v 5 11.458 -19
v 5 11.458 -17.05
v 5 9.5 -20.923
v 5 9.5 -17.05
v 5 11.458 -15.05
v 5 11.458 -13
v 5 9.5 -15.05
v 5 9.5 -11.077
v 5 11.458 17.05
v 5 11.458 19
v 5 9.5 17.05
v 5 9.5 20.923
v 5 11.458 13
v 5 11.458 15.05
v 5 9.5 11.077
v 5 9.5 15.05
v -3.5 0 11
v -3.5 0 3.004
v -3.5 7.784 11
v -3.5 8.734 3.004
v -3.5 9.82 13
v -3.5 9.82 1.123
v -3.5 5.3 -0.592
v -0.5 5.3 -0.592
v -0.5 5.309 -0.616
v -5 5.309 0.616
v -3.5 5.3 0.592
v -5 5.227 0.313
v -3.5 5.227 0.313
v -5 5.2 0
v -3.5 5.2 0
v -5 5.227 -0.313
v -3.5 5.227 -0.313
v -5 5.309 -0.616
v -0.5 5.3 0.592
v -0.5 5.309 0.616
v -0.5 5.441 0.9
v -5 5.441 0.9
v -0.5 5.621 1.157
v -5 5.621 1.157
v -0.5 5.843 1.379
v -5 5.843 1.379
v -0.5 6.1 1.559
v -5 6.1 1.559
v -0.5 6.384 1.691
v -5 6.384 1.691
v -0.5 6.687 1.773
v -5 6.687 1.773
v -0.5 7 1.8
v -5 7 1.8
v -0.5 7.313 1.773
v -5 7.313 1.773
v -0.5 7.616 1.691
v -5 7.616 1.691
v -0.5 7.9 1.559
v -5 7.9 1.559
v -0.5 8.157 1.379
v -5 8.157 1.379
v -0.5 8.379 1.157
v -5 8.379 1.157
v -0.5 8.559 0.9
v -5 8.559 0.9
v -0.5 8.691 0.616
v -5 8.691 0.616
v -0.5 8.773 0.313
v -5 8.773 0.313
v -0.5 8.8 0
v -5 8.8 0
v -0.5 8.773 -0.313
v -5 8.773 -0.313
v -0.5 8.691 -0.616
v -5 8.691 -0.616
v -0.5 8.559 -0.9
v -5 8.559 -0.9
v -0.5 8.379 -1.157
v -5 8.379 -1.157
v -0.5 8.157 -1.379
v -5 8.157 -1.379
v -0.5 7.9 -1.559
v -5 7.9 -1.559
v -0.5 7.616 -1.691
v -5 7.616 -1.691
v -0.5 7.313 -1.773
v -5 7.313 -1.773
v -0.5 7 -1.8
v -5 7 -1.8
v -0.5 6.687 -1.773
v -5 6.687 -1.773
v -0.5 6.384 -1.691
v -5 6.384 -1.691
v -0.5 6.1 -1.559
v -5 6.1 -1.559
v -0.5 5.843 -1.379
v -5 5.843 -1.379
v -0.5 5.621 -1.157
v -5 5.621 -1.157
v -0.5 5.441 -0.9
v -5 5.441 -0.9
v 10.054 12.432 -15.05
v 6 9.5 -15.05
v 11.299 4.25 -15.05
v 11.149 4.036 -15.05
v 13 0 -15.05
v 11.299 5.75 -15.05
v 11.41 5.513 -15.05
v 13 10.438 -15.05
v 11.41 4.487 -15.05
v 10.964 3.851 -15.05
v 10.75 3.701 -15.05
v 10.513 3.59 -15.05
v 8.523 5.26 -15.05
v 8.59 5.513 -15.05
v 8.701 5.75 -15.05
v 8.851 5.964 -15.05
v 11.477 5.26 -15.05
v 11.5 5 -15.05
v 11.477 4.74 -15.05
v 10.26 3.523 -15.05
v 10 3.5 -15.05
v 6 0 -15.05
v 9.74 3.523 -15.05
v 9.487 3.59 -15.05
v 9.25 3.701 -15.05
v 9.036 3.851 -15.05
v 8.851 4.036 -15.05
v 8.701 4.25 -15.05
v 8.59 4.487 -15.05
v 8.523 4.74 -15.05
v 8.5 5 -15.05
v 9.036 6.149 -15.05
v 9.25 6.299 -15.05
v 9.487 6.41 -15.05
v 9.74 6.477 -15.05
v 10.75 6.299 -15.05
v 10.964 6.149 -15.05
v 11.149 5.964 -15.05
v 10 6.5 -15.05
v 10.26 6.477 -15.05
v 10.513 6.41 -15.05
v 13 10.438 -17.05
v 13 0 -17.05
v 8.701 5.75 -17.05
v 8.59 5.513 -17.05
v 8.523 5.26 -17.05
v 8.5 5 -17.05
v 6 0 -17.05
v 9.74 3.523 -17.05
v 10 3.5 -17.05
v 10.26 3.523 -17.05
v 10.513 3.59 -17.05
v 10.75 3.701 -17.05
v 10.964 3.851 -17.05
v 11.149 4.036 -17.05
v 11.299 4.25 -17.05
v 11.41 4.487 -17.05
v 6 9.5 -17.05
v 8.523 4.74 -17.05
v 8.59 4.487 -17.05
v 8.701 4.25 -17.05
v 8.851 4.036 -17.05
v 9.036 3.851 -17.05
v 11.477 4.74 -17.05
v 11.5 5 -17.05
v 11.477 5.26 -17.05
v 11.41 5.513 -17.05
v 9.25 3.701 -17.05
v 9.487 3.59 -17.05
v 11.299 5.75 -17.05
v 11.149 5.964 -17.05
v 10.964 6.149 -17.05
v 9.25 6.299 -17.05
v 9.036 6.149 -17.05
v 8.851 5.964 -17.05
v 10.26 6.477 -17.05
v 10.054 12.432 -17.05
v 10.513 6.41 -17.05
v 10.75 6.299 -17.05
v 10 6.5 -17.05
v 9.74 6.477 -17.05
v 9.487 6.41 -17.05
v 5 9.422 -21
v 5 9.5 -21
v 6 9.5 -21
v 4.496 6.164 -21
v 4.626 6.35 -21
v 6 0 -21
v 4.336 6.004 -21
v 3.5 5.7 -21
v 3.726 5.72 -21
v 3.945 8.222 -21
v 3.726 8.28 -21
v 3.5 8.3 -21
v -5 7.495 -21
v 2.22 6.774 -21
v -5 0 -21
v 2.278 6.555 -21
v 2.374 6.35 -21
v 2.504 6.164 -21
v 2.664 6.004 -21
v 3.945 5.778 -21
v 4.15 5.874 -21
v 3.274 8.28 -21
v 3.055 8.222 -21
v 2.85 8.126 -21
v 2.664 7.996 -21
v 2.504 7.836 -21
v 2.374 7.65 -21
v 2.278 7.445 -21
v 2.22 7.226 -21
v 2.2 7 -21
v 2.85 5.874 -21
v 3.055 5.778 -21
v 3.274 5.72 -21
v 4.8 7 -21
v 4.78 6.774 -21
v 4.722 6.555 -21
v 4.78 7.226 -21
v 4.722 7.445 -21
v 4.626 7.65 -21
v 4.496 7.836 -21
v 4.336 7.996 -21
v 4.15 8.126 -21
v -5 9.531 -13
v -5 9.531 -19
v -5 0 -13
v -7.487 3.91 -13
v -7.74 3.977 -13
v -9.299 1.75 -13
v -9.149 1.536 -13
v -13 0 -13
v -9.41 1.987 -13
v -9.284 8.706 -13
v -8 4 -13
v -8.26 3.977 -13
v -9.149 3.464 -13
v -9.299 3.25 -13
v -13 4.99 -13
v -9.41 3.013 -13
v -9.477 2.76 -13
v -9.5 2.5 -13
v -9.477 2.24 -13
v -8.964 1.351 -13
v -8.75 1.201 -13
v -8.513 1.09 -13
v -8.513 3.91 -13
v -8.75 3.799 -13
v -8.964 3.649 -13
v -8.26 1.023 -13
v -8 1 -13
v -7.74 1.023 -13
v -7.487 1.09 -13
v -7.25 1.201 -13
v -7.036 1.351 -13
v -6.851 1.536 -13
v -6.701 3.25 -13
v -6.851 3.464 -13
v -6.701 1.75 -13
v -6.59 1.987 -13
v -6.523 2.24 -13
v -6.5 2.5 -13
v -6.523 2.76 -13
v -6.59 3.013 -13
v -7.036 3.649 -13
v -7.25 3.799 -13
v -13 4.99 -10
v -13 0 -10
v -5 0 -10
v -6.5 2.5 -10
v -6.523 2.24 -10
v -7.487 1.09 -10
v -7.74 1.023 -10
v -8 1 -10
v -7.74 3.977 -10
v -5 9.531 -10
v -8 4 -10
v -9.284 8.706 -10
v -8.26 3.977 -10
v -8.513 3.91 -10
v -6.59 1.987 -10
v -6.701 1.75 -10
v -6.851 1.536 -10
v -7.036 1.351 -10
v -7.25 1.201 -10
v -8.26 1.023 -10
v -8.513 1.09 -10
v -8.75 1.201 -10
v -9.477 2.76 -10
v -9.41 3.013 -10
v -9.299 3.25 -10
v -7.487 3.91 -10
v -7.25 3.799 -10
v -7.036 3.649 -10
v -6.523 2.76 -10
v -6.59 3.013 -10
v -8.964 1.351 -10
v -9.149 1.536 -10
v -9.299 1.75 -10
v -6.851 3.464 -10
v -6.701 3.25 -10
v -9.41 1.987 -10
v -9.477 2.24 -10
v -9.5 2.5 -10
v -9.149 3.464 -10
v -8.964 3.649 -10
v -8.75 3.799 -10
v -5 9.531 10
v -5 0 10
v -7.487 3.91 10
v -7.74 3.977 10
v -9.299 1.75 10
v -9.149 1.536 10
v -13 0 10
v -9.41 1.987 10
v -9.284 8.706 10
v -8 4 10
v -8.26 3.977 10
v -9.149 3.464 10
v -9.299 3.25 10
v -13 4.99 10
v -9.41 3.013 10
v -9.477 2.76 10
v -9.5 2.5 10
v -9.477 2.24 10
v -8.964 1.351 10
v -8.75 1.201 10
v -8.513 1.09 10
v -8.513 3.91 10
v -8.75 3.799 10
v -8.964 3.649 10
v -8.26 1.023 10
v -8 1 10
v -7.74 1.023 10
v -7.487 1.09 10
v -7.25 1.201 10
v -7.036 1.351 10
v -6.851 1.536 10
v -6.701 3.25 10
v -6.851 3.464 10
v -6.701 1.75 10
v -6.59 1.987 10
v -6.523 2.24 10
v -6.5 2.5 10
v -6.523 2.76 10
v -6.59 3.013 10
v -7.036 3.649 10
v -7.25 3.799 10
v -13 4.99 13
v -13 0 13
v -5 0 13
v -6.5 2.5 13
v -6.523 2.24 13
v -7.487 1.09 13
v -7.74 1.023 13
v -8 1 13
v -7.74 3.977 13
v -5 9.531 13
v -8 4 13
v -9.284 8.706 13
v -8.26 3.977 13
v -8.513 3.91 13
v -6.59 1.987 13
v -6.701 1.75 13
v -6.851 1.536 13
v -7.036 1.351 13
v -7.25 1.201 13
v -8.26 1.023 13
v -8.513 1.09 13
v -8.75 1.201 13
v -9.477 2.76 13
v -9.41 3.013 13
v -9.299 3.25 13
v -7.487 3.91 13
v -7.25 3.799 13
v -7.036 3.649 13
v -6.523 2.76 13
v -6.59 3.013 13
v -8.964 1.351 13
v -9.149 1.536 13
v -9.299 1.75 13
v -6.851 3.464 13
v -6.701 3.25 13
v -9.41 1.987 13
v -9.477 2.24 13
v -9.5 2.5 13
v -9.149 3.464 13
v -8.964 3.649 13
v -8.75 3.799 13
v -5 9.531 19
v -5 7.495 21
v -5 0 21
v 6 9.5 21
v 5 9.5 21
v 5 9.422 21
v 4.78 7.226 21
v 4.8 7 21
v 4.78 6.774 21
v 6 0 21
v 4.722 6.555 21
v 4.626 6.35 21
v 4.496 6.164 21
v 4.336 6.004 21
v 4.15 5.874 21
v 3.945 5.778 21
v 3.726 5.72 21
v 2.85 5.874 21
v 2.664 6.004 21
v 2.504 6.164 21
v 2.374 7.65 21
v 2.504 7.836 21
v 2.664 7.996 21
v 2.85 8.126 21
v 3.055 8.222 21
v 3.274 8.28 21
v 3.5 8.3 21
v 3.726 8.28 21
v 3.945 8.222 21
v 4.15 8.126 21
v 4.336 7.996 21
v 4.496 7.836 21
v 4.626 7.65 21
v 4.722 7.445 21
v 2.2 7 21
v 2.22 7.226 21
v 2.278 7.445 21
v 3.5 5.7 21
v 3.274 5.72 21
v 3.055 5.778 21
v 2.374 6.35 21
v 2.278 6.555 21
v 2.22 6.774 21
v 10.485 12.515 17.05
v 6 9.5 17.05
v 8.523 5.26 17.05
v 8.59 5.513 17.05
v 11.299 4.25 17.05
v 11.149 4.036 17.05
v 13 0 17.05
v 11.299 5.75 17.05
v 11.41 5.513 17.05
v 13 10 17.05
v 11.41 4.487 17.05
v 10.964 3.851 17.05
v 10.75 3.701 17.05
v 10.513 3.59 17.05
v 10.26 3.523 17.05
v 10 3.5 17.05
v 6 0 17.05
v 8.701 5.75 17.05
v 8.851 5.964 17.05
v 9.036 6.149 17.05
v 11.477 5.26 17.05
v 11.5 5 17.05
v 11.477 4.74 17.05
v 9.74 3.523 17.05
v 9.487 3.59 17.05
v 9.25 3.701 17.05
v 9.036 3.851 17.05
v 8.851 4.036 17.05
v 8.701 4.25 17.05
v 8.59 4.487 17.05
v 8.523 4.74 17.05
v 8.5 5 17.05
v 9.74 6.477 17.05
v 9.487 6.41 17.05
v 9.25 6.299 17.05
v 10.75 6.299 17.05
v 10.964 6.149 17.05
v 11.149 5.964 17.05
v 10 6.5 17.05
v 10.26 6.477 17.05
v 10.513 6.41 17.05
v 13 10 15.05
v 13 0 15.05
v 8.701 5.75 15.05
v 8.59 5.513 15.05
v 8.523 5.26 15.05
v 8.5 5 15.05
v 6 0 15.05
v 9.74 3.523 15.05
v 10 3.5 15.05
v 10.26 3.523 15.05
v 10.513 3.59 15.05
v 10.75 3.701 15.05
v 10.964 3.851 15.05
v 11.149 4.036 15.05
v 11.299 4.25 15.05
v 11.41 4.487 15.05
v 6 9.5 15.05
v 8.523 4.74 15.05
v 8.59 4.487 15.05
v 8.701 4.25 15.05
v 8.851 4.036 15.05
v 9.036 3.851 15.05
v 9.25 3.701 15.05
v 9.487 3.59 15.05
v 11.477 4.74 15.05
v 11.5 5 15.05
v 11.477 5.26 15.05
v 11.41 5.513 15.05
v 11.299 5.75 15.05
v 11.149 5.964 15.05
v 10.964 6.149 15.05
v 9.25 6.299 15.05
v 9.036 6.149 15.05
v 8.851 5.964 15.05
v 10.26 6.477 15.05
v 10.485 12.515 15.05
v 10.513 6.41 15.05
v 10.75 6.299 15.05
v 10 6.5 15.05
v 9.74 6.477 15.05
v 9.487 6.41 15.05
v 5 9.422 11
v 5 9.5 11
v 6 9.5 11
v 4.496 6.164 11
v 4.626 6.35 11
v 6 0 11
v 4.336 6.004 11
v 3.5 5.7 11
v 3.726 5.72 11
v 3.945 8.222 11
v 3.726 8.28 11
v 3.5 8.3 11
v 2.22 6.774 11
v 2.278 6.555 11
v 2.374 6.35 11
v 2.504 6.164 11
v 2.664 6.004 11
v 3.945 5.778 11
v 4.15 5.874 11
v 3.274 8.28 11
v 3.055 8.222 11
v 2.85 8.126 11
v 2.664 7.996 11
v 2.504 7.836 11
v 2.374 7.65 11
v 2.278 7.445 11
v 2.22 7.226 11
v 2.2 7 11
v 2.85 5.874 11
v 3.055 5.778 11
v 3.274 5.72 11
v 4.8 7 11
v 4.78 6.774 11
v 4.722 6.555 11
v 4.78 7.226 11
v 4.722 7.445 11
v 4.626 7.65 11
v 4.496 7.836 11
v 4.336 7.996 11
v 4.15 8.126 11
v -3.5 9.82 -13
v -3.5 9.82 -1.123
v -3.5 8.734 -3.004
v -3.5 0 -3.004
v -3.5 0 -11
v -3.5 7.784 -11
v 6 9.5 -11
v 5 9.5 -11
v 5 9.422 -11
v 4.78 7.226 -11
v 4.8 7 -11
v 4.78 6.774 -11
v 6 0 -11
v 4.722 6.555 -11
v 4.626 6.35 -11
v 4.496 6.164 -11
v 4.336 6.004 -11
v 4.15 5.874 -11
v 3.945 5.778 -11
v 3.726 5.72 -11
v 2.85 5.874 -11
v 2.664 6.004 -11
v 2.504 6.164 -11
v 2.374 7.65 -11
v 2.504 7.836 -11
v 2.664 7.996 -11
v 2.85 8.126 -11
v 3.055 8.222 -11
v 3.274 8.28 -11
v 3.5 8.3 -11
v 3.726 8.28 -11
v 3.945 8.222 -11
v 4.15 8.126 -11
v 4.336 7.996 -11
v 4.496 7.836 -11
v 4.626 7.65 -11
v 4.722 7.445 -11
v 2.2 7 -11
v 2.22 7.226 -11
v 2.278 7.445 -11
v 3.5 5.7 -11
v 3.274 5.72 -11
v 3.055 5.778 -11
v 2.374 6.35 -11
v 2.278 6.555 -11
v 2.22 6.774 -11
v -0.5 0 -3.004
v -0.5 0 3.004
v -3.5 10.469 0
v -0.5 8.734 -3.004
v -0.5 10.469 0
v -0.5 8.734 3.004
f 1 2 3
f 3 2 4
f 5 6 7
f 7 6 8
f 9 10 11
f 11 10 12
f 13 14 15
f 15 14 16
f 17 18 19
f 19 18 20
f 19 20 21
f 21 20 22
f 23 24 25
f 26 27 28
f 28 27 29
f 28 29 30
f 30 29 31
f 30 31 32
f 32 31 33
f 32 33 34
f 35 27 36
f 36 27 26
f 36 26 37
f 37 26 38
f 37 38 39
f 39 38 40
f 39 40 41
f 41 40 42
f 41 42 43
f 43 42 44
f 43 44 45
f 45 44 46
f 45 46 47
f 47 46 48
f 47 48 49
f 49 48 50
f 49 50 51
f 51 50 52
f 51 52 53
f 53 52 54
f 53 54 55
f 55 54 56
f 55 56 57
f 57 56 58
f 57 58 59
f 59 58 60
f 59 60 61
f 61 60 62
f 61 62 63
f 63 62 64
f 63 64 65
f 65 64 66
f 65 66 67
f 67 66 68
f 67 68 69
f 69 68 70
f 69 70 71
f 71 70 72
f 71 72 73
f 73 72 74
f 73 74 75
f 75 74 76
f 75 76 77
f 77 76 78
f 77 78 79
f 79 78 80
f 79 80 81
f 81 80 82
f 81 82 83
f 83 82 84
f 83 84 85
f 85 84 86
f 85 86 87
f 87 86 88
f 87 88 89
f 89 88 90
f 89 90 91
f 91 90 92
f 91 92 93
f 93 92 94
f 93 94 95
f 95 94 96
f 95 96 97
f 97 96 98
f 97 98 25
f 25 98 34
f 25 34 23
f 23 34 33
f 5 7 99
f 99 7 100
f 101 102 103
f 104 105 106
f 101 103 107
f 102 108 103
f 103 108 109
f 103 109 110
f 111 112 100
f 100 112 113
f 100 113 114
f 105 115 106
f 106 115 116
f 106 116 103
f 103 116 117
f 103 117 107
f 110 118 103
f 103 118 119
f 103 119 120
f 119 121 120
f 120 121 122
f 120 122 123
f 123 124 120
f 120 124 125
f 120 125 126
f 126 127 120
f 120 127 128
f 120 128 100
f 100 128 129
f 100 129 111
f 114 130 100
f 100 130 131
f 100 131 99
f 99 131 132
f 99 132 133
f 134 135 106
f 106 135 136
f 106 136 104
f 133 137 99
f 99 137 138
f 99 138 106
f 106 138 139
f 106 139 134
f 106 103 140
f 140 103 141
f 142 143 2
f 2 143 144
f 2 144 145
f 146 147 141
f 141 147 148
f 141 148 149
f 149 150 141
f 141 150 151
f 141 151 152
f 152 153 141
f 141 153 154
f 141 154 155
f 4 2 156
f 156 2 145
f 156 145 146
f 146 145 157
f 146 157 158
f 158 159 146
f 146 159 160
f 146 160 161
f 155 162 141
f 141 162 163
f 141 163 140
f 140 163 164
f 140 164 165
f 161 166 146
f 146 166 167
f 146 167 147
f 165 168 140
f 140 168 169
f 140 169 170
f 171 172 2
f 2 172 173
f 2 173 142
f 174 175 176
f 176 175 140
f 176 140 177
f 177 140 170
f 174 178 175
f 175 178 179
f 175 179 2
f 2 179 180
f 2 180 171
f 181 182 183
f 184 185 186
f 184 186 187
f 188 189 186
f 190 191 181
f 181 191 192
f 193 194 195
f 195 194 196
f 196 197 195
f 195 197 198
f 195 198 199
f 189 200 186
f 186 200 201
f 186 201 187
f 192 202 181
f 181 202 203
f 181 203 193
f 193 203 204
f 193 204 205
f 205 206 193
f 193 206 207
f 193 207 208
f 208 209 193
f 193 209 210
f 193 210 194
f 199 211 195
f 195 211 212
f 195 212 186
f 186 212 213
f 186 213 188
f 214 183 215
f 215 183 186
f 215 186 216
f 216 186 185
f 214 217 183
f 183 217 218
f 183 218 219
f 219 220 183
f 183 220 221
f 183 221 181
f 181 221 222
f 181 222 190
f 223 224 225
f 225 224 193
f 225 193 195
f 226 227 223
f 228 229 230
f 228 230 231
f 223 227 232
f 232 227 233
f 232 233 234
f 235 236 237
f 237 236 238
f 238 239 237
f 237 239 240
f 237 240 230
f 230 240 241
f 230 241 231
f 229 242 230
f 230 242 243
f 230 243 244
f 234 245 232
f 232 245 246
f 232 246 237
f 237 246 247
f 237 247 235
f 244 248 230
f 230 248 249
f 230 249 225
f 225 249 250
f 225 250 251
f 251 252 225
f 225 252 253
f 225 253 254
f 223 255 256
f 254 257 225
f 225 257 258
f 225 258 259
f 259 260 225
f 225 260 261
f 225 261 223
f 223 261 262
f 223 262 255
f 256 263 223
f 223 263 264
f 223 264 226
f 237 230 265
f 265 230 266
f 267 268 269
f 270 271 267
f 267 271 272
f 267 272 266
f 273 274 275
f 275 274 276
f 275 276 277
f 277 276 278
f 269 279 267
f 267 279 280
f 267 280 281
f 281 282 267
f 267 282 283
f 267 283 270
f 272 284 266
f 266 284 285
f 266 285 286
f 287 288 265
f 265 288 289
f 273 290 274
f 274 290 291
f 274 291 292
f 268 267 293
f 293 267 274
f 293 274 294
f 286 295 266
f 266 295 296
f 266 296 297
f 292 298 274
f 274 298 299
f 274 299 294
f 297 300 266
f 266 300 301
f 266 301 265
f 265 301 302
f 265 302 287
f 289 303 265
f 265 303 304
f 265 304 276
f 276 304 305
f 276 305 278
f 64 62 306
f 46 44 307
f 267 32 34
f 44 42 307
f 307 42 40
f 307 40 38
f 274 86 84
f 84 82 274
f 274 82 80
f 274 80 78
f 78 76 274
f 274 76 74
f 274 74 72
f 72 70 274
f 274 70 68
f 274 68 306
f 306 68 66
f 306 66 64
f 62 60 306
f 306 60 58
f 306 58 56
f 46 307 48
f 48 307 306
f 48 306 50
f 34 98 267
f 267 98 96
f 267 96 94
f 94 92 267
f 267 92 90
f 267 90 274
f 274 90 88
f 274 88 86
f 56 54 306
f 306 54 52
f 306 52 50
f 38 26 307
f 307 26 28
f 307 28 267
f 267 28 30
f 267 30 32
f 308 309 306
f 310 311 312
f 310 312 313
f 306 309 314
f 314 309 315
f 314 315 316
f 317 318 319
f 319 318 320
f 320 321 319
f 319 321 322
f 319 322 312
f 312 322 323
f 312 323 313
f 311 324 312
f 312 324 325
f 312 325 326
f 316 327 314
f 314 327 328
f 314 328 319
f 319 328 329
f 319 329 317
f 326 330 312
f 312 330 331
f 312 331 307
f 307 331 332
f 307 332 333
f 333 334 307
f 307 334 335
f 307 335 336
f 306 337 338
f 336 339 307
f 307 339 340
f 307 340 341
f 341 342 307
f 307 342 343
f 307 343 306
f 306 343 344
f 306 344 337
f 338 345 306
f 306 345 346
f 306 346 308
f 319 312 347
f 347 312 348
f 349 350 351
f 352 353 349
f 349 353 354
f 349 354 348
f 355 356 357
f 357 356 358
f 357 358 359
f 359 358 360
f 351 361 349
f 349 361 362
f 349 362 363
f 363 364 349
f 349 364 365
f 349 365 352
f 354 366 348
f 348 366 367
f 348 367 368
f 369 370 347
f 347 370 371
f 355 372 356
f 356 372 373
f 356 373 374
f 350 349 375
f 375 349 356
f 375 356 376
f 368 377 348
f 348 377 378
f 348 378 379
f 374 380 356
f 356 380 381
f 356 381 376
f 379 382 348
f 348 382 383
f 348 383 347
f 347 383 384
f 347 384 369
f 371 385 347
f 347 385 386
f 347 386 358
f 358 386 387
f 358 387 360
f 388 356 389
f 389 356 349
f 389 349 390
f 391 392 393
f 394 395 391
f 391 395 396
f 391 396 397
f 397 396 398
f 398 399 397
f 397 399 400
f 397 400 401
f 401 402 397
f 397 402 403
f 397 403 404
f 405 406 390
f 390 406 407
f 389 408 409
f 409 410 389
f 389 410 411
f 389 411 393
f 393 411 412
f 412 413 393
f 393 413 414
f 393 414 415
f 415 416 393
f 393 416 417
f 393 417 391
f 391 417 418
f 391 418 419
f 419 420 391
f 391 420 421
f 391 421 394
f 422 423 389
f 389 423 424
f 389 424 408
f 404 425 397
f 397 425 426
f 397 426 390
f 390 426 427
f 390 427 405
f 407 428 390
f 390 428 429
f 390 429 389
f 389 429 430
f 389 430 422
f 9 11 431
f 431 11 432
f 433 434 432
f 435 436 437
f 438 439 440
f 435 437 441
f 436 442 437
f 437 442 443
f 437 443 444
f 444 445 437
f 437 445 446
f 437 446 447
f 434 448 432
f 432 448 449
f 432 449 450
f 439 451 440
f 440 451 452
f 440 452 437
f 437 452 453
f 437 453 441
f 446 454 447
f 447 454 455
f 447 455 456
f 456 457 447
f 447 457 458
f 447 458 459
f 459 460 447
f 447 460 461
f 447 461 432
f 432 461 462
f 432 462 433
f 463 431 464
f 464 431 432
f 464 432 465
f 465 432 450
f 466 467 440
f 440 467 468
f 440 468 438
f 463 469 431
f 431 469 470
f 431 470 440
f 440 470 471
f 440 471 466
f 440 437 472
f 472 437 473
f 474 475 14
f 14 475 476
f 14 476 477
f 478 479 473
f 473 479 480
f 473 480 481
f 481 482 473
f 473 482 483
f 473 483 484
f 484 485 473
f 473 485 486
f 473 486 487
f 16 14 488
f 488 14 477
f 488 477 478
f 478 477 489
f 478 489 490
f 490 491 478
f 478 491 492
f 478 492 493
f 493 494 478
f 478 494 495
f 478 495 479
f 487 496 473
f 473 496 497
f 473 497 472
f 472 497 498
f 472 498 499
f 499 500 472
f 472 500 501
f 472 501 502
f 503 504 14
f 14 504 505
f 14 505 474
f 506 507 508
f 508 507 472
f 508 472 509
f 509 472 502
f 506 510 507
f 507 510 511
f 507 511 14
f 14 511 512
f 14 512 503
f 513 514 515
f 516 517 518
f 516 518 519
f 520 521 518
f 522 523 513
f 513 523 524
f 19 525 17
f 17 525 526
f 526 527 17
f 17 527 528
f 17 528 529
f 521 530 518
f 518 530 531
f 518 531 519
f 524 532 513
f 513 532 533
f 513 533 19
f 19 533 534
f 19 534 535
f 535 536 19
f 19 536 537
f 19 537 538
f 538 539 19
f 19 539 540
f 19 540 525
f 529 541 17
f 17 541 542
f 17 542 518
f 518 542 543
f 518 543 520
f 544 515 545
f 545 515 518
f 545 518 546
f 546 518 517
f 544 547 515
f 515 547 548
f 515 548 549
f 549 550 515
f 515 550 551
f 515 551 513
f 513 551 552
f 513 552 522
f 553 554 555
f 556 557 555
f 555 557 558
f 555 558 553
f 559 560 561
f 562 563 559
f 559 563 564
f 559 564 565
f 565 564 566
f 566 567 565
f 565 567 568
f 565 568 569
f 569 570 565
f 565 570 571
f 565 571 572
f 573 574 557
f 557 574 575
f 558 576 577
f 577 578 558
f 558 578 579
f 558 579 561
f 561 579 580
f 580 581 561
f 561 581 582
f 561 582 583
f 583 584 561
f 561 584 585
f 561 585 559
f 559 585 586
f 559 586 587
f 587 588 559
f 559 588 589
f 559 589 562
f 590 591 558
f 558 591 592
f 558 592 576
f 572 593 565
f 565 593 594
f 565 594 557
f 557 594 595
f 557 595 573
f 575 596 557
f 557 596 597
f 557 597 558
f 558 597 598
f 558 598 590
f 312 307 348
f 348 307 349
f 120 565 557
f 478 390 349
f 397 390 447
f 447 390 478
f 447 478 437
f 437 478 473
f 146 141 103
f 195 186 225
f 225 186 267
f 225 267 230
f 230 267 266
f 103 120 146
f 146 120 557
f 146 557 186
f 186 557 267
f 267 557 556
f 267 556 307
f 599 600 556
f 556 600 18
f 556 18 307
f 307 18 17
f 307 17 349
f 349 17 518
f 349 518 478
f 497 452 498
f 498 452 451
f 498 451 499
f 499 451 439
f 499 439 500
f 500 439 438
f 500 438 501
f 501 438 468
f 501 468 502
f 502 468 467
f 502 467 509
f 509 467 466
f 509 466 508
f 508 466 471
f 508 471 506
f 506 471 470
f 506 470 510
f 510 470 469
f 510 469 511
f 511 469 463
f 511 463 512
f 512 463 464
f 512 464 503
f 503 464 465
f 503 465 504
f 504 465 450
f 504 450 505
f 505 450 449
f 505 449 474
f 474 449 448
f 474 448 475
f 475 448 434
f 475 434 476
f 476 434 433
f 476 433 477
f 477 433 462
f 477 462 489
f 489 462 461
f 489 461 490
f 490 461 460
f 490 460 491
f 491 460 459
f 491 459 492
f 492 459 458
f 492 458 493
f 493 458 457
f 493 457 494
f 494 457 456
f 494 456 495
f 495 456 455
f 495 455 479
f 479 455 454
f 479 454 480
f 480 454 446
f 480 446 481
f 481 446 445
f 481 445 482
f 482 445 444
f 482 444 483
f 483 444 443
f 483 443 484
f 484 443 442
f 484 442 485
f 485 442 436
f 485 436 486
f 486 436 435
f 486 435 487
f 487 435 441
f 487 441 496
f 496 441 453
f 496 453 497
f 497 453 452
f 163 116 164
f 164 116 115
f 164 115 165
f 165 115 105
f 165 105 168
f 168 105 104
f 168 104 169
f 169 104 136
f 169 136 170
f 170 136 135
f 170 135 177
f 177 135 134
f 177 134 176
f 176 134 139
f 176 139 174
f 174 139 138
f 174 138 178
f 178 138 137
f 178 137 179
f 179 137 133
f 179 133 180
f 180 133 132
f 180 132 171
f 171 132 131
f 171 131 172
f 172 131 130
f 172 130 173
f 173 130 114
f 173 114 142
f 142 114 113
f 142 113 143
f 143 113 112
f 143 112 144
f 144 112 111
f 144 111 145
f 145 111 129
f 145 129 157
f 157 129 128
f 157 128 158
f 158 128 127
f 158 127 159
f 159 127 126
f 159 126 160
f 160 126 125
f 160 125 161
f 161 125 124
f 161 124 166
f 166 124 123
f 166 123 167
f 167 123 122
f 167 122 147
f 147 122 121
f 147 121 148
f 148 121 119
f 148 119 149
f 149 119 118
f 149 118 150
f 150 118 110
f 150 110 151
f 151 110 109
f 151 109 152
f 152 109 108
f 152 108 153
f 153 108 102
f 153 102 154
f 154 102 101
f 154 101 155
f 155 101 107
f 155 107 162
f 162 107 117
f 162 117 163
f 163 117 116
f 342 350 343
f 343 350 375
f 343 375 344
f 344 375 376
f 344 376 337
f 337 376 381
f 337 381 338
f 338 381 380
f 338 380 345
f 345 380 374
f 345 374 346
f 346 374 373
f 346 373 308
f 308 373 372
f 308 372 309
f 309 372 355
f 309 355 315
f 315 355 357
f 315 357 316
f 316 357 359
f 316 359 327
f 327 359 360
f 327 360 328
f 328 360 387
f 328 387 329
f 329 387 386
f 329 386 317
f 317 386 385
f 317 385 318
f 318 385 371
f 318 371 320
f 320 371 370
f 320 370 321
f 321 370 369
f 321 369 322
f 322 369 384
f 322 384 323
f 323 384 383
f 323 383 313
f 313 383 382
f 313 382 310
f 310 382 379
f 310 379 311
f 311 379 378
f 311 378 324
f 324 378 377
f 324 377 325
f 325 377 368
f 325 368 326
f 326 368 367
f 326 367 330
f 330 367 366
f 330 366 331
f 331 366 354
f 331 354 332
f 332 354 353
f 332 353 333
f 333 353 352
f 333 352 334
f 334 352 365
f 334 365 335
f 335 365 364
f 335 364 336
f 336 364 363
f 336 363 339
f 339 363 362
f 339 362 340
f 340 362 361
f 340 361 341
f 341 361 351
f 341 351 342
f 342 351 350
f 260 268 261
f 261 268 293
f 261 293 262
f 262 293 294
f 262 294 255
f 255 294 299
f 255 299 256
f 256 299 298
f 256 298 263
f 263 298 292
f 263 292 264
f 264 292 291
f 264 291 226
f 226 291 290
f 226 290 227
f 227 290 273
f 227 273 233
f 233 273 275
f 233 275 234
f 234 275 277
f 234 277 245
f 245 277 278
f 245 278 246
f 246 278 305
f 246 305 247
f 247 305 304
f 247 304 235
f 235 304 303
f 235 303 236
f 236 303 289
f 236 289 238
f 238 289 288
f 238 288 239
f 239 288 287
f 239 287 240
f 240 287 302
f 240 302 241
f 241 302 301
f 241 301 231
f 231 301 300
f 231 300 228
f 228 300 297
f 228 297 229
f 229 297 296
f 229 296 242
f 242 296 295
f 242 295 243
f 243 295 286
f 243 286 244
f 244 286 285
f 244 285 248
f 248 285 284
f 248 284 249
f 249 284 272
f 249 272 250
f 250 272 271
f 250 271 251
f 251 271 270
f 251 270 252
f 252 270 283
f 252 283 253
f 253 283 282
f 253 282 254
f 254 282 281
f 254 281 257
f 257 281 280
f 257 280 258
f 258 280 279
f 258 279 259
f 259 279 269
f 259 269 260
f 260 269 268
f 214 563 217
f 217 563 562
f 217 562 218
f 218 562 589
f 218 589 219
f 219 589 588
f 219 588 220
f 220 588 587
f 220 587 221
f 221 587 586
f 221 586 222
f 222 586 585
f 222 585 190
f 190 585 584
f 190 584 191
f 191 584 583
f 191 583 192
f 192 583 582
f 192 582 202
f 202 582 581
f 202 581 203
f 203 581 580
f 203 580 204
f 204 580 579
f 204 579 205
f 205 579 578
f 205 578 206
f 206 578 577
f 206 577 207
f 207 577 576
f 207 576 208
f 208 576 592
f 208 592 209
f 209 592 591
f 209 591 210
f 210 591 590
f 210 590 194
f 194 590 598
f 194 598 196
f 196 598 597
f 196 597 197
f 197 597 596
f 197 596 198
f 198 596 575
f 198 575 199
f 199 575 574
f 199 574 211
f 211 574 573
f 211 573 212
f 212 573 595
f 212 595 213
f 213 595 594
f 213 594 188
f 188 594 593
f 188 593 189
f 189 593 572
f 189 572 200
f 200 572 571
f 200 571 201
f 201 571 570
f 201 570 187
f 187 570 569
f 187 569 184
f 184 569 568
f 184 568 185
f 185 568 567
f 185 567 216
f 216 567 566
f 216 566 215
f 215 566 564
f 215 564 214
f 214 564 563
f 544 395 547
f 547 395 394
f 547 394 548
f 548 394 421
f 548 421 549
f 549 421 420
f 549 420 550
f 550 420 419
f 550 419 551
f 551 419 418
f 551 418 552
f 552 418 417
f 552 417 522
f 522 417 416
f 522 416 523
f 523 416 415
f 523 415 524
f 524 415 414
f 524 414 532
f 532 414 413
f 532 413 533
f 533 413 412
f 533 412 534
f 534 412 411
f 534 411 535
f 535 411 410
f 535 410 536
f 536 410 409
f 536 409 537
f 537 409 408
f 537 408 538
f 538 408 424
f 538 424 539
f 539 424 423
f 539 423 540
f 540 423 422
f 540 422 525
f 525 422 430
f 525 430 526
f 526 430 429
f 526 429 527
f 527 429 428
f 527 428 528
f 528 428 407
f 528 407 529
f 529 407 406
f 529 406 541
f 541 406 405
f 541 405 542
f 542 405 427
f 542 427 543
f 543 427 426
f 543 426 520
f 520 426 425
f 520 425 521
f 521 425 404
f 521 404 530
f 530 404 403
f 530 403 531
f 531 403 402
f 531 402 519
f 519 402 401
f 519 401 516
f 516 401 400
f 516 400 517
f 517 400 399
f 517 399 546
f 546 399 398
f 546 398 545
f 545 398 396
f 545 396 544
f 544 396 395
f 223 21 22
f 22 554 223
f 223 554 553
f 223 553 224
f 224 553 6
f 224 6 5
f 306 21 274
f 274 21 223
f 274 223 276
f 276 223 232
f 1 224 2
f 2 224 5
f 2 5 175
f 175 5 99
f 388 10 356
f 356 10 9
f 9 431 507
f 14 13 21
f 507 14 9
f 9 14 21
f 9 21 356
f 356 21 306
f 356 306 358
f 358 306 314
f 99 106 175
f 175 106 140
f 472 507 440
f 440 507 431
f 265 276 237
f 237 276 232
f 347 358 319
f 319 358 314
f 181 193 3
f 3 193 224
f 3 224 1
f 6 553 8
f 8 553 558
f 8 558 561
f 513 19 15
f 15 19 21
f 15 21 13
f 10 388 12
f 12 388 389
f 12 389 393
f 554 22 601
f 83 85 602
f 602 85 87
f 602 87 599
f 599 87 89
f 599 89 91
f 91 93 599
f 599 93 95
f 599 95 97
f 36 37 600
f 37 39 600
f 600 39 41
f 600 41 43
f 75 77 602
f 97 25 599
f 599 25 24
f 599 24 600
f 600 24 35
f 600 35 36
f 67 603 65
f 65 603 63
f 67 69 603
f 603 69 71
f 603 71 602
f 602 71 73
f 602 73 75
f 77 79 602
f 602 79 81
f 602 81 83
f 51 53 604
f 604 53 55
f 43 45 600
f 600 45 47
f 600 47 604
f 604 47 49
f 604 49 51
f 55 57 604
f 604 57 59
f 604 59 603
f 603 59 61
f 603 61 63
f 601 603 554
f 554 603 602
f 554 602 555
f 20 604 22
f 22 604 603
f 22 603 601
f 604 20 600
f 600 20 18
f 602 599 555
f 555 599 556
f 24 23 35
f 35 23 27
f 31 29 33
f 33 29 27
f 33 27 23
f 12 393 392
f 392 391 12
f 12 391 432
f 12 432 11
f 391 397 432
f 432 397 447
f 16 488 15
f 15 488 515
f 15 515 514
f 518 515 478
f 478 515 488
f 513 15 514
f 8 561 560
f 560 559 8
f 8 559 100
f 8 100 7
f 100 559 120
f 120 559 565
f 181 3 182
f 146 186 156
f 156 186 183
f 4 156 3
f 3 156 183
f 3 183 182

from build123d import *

# Parameters (mm, degrees)
EXTRUDE_1_DEPTH        = 13
SKETCH_2_R             = 1.5
SKETCH_2_R_2           = 1.3
CUT_EXTRUDE_1_DEPTH    = 43
CHAMFER_1_SIZE2        = 3
CHAMFER_1_SIZE         = 3.784471042
CHAMFER_1_EDGE_2_SIZE2 = 3
CHAMFER_1_EDGE_2_SIZE  = 3.784471042
CHAMFER_1_EDGE_3_SIZE2 = 3
CHAMFER_1_EDGE_3_SIZE  = 2.56157214
CHAMFER_1_EDGE_4_SIZE2 = 2.56157214
CHAMFER_1_EDGE_4_SIZE  = 3
CHAMFER_2_SIZE         = 2
SKETCH_5_R             = 1.8
EXTRUDE_2_DEPTH        = 3
SKETCH_6_R             = 1.8
CUT_EXTRUDE_2_DEPTH    = 3
SKETCH_7_W             = 3
SKETCH_7_H             = 6.007931748
EXTRUDE_3_DEPTH        = 5.3
SKETCH_8_W             = 1
SKETCH_8_H             = 10
EXTRUDE_4_DEPTH        = 9.5


with BuildPart() as part:
    # 草图1 → 凸台-拉伸1 (new body)
    with BuildSketch(Plane(origin=(0, 0, 0), x_dir=(1, 0, 0), z_dir=(0, 1, 0))):
        Polygon((13, -15.05), (5, -15.05), (5, -11), (-3.5, -11), (-3.5, 11), (5, 11), (5, 15.05), (13, 15.05), (13, 17.05), (5, 17.05), (5, 21), (-5, 21), (-5, 13), (-13, 13), (-13, 10), (-5, 10), (-5, -10), (-13, -10), (-13, -13), (-5, -13), (-5, -21), (5, -21), (5, -17.05), (13, -17.05), align=None)
    extrude(amount=EXTRUDE_1_DEPTH)

    # 草图2 → 切除-拉伸1 (cut, through all)
    with BuildSketch(Plane.XY.offset(21)):
        with Locations((10, 5)):
            Circle(SKETCH_2_R)
        with Locations((-8, 2.5)):
            Circle(SKETCH_2_R)
        with Locations((3.5, 7)):
            Circle(SKETCH_2_R_2)
        Polygon((-13, 7.989732885), (13, 13), (-13, 13), align=None)
    extrude(amount=-CUT_EXTRUDE_1_DEPTH, mode=Mode.SUBTRACT)

    # 倒角1
    chamfer_1_edges = [part.edges().sort_by_distance(p)[0] for p in [
        (-13, 7.989732885, -11.5),
    ]]
    chamfer(chamfer_1_edges, length=CHAMFER_1_SIZE, length2=CHAMFER_1_SIZE2)

    # 倒角1 edge 2
    chamfer_1_edge_2_edges = [part.edges().sort_by_distance(p)[0] for p in [
        (-13, 7.989732885, 11.5),
    ]]
    chamfer(chamfer_1_edge_2_edges, length=CHAMFER_1_EDGE_2_SIZE, length2=CHAMFER_1_EDGE_2_SIZE2)

    # 倒角1 edge 3
    chamfer_1_edge_3_edges = [part.edges().sort_by_distance(p)[0] for p in [
        (13, 13, 16.05),
    ]]
    chamfer(chamfer_1_edge_3_edges, length=CHAMFER_1_EDGE_3_SIZE, length2=CHAMFER_1_EDGE_3_SIZE2)

    # 倒角1 edge 4
    chamfer_1_edge_4_edges = [part.edges().sort_by_distance(p)[0] for p in [
        (13, 13, -16.05),
    ]]
    chamfer(chamfer_1_edge_4_edges, length=CHAMFER_1_EDGE_4_SIZE, length2=CHAMFER_1_EDGE_4_SIZE2)

    # 倒角2
    chamfer_2_edges = [part.edges().sort_by_distance(p)[0] for p in [
        (0, 10.494866442, -21),
        (0.75, 10.639393378, 11),
        (0.75, 10.639393378, -11),
        (0, 10.494866442, 21),
    ]]
    chamfer(chamfer_2_edges, length=CHAMFER_2_SIZE)

    # 草图5 → 凸台-拉伸2 (add)
    with BuildSketch(Plane(origin=(-3.5, 0, 0), x_dir=(0, 0, -1), z_dir=(1, 0, 0))):
        Polygon((0, 10.468681012), (-3.003965874, 8.734340506), (-3.003965874, 5.265659494), (0, 3.531318988), (3.003965874, 5.265659494), (3.003965874, 8.734340506), align=None)
        with Locations((0, 7)):
            Circle(SKETCH_5_R, mode=Mode.SUBTRACT)
    extrude(amount=EXTRUDE_2_DEPTH)

    # 草图6 → 切除-拉伸2 (cut)
    with BuildSketch(Plane(origin=(-3.5, 0, 0), x_dir=(0, 0, -1), z_dir=(1, 0, 0))):
        with Locations((0, 7)):
            Circle(SKETCH_6_R)
    extrude(amount=-CUT_EXTRUDE_2_DEPTH, mode=Mode.SUBTRACT)

    # 草图7 → 凸台-拉伸3 (add)
    with BuildSketch(Plane.XZ):
        with Locations((-2, 0)):
            Rectangle(SKETCH_7_W, SKETCH_7_H)
    extrude(amount=-EXTRUDE_3_DEPTH)

    # 草图8 → 凸台-拉伸4 (add)
    with BuildSketch(Plane.XZ):
        with Locations((5.5, 16)):
            Rectangle(SKETCH_8_W, SKETCH_8_H)
        with Locations((5.5, -16)):
            Rectangle(SKETCH_8_W, SKETCH_8_H)
    extrude(amount=-EXTRUDE_4_DEPTH)


solid = part.part
